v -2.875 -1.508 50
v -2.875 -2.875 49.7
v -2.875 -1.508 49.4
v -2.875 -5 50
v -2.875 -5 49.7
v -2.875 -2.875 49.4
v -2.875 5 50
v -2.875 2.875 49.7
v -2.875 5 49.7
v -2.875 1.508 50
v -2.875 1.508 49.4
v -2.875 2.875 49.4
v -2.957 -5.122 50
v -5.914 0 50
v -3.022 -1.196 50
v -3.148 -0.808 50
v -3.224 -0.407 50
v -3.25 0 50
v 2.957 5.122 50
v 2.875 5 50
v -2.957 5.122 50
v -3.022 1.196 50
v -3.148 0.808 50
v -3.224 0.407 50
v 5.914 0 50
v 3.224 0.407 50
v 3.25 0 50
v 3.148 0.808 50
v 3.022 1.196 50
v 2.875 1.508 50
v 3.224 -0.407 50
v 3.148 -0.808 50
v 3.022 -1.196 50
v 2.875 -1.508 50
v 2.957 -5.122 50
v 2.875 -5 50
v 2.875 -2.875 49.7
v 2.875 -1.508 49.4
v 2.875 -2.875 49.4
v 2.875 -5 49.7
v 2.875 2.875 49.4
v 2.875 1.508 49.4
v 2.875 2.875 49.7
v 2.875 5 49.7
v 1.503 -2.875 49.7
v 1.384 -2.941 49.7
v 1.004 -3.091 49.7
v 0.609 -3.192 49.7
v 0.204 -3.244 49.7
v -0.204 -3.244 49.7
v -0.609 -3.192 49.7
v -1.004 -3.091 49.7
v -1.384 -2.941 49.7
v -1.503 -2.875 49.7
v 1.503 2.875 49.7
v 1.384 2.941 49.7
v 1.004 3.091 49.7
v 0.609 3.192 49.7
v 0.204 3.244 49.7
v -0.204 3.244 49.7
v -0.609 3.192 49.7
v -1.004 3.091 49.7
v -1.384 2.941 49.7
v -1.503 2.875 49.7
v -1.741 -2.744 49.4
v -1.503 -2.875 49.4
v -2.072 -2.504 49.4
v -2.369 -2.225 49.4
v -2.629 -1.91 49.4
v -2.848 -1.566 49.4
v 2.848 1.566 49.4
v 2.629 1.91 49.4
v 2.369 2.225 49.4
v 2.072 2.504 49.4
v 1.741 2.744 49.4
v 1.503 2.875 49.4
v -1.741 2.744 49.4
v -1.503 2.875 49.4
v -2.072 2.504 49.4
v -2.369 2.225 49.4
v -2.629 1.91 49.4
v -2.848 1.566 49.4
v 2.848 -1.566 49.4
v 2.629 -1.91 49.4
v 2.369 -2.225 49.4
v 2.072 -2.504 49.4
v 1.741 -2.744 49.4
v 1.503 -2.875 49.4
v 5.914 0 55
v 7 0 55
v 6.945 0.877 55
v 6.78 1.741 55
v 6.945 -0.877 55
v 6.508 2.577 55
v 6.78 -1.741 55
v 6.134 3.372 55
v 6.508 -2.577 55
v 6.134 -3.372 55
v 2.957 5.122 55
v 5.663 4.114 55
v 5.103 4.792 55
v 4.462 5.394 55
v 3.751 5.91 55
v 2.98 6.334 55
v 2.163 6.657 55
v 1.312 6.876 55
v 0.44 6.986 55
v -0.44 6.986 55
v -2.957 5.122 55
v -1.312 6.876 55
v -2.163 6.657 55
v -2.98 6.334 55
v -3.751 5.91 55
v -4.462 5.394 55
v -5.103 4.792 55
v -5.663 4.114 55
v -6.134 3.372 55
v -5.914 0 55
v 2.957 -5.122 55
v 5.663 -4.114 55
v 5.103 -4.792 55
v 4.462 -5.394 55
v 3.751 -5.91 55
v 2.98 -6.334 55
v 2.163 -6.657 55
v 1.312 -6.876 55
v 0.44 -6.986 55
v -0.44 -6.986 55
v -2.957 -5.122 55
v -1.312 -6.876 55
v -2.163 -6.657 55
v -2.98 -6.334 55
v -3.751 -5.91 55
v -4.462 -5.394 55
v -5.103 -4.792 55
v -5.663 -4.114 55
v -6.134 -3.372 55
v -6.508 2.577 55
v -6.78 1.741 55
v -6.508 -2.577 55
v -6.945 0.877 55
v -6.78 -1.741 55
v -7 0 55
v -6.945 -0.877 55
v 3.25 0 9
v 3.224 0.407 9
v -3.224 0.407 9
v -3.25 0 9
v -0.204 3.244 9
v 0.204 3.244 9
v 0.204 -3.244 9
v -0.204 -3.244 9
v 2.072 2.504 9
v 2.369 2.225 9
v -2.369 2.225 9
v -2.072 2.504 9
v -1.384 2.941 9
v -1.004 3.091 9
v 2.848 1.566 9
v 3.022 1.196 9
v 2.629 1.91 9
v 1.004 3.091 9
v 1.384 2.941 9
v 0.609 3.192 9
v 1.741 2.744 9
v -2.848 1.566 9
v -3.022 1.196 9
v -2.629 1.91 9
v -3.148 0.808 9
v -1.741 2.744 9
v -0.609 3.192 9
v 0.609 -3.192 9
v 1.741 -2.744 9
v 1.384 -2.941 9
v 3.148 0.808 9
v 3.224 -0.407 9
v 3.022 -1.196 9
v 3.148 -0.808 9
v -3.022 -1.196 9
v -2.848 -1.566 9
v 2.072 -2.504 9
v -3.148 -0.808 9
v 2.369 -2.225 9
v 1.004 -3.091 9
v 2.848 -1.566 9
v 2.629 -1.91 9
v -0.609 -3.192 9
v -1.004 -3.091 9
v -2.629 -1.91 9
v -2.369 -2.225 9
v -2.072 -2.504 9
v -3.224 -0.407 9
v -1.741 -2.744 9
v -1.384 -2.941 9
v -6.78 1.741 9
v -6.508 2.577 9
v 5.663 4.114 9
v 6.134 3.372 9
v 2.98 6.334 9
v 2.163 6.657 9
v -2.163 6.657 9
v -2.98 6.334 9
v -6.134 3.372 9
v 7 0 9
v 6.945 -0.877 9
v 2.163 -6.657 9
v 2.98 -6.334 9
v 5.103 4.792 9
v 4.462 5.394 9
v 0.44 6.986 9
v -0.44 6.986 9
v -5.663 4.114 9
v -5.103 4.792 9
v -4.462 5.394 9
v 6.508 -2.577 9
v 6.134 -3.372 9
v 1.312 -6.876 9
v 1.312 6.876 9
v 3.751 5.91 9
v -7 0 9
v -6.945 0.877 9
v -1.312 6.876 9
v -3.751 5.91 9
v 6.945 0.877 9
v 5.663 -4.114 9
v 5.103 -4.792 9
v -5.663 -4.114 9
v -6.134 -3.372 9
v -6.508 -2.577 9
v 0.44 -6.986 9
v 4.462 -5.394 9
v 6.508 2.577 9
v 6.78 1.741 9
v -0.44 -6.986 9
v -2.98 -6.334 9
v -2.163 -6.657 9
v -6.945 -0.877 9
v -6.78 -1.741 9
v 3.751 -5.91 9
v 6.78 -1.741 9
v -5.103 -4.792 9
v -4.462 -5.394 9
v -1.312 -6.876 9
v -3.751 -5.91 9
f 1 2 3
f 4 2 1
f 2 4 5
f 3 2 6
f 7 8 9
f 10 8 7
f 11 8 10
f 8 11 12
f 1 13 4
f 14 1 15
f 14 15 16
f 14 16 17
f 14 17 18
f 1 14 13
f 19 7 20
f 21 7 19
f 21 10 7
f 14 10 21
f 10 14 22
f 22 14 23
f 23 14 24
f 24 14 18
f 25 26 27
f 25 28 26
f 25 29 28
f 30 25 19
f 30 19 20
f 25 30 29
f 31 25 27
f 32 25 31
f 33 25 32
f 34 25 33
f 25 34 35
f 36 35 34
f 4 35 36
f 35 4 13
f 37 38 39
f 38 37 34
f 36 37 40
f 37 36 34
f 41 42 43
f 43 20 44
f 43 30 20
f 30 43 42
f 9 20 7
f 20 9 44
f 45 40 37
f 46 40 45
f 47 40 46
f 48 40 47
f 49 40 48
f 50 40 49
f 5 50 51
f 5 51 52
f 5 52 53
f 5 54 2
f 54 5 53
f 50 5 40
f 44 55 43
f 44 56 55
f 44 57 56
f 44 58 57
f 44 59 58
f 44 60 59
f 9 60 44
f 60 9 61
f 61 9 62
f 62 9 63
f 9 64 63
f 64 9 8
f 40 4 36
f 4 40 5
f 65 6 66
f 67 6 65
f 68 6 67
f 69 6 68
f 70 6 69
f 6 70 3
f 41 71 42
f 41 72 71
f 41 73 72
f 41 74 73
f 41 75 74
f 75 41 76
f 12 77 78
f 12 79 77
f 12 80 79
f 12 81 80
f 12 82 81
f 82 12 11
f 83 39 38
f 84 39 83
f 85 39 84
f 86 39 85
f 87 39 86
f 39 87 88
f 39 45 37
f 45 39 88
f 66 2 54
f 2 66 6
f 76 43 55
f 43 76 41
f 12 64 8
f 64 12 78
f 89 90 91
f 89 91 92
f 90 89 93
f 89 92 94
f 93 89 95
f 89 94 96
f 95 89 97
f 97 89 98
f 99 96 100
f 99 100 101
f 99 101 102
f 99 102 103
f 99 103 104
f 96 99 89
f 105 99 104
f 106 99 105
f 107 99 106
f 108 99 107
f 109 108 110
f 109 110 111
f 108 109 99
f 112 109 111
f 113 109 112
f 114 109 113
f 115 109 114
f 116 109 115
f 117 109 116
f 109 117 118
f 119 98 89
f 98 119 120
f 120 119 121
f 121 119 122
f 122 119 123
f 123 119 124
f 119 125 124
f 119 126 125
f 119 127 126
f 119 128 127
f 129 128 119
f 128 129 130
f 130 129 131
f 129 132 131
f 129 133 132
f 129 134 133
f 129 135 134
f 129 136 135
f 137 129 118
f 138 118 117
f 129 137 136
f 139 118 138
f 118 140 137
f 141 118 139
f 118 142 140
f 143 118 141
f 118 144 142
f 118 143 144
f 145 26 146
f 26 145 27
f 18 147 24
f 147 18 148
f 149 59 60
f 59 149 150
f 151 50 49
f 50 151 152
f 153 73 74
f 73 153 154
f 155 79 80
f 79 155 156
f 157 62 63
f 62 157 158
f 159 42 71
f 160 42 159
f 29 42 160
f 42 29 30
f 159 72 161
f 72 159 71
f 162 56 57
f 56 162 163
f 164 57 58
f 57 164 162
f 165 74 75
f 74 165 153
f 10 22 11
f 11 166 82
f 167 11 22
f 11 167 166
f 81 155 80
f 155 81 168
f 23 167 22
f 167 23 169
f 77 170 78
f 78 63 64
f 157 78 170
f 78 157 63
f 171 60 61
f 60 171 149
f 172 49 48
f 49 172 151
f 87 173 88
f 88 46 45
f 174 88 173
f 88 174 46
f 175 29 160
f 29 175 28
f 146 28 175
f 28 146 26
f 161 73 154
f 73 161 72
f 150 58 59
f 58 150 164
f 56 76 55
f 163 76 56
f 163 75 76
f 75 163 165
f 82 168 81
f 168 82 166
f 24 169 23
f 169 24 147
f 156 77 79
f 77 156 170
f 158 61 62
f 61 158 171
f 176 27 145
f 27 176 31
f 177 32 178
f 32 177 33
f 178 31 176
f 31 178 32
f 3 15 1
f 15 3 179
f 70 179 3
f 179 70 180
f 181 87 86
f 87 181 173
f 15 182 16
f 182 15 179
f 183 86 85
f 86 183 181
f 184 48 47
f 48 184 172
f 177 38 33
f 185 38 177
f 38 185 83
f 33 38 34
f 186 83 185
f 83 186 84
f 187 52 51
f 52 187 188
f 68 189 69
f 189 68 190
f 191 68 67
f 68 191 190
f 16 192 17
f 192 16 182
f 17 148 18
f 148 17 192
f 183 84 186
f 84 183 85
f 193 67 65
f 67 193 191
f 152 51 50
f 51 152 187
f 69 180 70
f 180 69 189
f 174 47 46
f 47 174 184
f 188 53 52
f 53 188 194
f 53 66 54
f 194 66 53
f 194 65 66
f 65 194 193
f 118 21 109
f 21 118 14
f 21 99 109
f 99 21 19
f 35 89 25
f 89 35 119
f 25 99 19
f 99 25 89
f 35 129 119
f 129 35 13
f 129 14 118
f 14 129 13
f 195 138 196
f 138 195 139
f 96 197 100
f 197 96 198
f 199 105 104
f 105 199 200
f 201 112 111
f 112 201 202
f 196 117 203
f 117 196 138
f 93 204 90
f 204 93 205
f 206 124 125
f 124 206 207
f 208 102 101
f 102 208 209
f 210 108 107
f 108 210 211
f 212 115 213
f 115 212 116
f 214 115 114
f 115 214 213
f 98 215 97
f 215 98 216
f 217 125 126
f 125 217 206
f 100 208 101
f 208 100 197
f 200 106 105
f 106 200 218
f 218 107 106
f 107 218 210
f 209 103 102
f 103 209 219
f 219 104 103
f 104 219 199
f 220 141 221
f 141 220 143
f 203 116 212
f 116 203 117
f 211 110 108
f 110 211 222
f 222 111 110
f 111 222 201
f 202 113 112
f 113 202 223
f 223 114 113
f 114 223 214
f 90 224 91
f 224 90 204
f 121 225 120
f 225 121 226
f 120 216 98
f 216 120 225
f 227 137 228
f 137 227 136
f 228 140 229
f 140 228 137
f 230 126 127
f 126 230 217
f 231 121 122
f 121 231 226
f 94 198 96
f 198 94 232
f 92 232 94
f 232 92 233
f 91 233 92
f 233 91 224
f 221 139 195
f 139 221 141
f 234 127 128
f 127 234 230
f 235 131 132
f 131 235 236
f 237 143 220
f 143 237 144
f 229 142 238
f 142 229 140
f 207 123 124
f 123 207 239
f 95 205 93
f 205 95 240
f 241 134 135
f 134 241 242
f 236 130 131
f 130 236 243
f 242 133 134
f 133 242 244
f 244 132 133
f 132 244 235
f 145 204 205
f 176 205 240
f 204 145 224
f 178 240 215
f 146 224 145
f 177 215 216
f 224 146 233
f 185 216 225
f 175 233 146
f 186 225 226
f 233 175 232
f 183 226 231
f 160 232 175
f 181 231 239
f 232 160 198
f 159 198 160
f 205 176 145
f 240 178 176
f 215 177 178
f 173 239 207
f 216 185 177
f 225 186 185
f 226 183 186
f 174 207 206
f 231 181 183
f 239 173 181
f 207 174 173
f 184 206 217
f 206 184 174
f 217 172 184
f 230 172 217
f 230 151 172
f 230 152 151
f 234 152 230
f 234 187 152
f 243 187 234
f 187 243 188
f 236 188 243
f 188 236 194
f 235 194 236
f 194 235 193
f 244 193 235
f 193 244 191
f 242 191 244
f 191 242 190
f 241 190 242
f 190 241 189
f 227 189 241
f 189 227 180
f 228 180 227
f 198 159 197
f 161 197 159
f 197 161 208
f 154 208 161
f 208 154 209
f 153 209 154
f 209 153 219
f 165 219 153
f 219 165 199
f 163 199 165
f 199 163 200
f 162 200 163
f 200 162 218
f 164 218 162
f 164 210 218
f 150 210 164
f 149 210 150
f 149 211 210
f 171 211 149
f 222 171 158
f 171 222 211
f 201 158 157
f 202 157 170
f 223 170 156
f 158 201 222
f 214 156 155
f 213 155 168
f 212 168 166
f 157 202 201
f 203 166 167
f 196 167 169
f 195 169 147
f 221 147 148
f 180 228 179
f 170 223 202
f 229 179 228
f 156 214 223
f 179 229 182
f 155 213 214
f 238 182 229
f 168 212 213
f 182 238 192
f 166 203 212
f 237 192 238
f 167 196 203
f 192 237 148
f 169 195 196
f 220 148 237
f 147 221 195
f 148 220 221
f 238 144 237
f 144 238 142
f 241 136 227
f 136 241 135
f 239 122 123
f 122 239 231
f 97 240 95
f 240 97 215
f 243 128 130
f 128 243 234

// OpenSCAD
$fn = 50;


difference() {
	union() {
		translate(v = [0, 0, 9.0000000000]) {
			cylinder(h = 46, r = 7.0000000000);
		}
	}
	union() {
		translate(v = [0, 0, 55]) {
			rotate(a = [0, 0, 0]) {
				difference() {
					union() {
						#translate(v = [-2.8750000000, -5.0000000000, -5.3000000000]) {
							cube(size = [5.7500000000, 10, 0.3000000000]);
						}
						#translate(v = [-2.8750000000, -2.8750000000, -5.6000000000]) {
							cube(size = [5.7500000000, 5.7500000000, 0.3000000000]);
						}
						#translate(v = [-2.8750000000, -5.0000000000, 0]) {
							cube(size = [5.7500000000, 10, 0.3000000000]);
						}
						#translate(v = [-2.8750000000, -2.8750000000, 0.3000000000]) {
							cube(size = [5.7500000000, 5.7500000000, 0.3000000000]);
						}
						#translate(v = [0, 0, -100.0000000000]) {
							cylinder(h = 200, r = 3.2500000000);
						}
						translate(v = [0, 0, -5]) {
							#linear_extrude(height = 5) {
								polygon(points = [[5.9142500000, 0.0000000000], [2.9571250000, 5.1218907443], [-2.9571250000, 5.1218907443], [-5.9142500000, 0.0000000000], [-2.9571250000, -5.1218907443], [2.9571250000, -5.1218907443]]);
							}
						}
						#translate(v = [-2.8750000000, -5.0000000000, -5.3000000000]) {
							cube(size = [5.7500000000, 10, 0.3000000000]);
						}
						#translate(v = [-2.8750000000, -2.8750000000, -5.6000000000]) {
							cube(size = [5.7500000000, 5.7500000000, 0.3000000000]);
						}
						#translate(v = [-2.8750000000, -5.0000000000, 0]) {
							cube(size = [5.7500000000, 10, 0.3000000000]);
						}
						#translate(v = [-2.8750000000, -2.8750000000, 0.3000000000]) {
							cube(size = [5.7500000000, 5.7500000000, 0.3000000000]);
						}
						#translate(v = [0, 0, -100.0000000000]) {
							cylinder(h = 200, r = 3.2500000000);
						}
						#translate(v = [-2.8750000000, -5.0000000000, -5.3000000000]) {
							cube(size = [5.7500000000, 10, 0.3000000000]);
						}
						#translate(v = [-2.8750000000, -2.8750000000, -5.6000000000]) {
							cube(size = [5.7500000000, 5.7500000000, 0.3000000000]);
						}
						#translate(v = [-2.8750000000, -5.0000000000, 0]) {
							cube(size = [5.7500000000, 10, 0.3000000000]);
						}
						#translate(v = [-2.8750000000, -2.8750000000, 0.3000000000]) {
							cube(size = [5.7500000000, 5.7500000000, 0.3000000000]);
						}
						#translate(v = [0, 0, -100.0000000000]) {
							cylinder(h = 200, r = 3.2500000000);
						}
					}
					union();
				}
			}
		}
		#translate(v = [0, 0, -100.0000000000]) {
			cylinder(h = 200, r = 3.2500000000);
		}
	}
}
